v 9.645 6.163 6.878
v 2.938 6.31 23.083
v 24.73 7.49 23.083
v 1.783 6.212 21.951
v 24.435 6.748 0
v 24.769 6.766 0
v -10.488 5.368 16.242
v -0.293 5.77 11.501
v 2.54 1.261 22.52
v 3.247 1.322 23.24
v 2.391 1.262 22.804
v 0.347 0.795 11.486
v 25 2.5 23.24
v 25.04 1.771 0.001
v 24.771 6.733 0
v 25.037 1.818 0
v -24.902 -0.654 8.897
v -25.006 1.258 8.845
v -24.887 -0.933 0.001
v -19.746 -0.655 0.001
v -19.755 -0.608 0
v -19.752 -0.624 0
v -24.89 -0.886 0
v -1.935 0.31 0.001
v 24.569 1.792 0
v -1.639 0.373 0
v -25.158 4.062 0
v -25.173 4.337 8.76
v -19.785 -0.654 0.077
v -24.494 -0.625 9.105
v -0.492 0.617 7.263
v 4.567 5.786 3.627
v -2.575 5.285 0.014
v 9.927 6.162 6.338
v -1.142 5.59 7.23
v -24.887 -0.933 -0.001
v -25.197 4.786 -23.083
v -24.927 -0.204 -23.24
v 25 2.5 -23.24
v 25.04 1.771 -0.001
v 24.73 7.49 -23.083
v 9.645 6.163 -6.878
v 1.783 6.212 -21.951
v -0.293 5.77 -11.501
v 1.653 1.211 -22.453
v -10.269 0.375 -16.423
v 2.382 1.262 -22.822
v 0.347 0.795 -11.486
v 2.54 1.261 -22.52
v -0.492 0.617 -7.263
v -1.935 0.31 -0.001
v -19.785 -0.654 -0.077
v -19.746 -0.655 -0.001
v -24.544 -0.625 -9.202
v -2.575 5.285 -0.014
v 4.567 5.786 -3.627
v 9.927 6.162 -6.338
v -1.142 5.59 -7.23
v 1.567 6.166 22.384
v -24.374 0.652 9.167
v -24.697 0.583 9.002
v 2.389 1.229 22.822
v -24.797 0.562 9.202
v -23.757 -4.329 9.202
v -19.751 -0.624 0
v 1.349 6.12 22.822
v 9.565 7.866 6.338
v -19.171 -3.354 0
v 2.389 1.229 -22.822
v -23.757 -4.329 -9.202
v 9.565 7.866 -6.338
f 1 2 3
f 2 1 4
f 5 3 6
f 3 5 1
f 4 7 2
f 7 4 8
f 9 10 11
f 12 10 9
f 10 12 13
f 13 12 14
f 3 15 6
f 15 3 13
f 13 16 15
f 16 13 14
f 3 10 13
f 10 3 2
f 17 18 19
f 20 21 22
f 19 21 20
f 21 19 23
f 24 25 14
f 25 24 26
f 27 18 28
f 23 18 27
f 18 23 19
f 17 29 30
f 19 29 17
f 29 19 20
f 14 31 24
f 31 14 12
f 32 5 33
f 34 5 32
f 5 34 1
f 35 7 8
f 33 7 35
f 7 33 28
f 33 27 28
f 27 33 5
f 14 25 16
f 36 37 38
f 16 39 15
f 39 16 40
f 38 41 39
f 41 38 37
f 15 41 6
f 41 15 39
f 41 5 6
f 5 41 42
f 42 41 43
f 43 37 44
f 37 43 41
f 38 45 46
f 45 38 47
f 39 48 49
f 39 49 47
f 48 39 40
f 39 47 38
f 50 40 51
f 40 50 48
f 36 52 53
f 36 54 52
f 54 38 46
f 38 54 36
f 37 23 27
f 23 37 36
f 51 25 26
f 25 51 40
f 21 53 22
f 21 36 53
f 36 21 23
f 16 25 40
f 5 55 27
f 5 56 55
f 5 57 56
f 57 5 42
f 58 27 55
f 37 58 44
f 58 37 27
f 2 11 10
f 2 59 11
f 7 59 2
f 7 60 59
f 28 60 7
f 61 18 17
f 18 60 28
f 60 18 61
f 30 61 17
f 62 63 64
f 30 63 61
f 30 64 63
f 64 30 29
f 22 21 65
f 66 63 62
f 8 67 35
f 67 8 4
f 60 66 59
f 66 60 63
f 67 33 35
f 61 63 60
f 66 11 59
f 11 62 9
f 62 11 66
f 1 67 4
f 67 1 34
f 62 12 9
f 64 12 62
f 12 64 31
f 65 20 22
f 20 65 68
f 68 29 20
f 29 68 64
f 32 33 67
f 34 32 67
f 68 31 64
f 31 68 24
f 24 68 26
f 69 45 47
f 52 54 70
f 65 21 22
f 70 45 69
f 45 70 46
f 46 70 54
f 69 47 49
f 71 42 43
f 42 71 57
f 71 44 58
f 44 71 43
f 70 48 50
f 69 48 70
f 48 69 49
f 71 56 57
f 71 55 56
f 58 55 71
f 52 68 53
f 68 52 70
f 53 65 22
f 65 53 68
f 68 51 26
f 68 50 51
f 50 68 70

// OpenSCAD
// file: ../include/decorations.scad
module decoration_top_btm() {
    if (build_decoration_top_btm) {
        difference() {
            translate([-(diam/2), (diam+5)/-2, (height-cutout_inner_h)/2])
            cube([diam/2+deco_inset, diam+5, 20]);
        
            translate([0, 0, -height/2])
            rotate([0, 1.2, 0])
            scale([0.96, 1.0])
            translate([-1.5, 0, 0])
            cylinder(h=height, d2=diam+0.8, d1=19, $fn=1000, center=false);
            
            translate([0, 0, -0.92])
            rotate([0, -deco_side_angle_1])
            translate([0, -25, 0])
            cube([20, 50, 20]);
        }
    } else {
        import("stl/decoration_top_btm.stl");
    }
}

module decoration_side() {
    if (build_decoration_side) {
        union() {
            translate([2.3, 1.21, 23])
            rotate([0, -deco_side_angle_1, deco_side_angle_2])
            translate([30, 0, 18.7]*-1)
            cube([30, 5, 18.5]);
            
            mirror(v=[0, 0, 1])
            translate([2.3, 1.21, 23])
            rotate([0, -deco_side_angle_1, deco_side_angle_2])
            translate([30, 0, 18.7]*-1)
            cube([30, 5, 18.5]);
            
            difference() {
                union() {
                    translate([0, 2.5, cutout_outer_h/4 - 0.01])
                    translate([25, 0, cutout_outer_h/4])
                    rotate([-deco_side_angle_horz, 0, deco_side_angle_vert])
                    translate([50, 0, cutout_outer_h/2]*-1)
                    cube([50, 5, cutout_outer_h/2]);
                    
                    mirror(v=[0, 0, 1])
                    translate([0, 2.5, cutout_outer_h/4 - 0.01])
                    translate([25, 0, cutout_outer_h/4])
                    rotate([-deco_side_angle_horz, 0, deco_side_angle_vert])
                    translate([50, 0, cutout_outer_h/2]*-1)
                    cube([50, 5, cutout_outer_h/2]);
                }
                
                translate([-30, -25, 6.3])
                rotate([0, -deco_side_angle_1, 0])
                cube(50);
            }
        }
    } else {
        import("stl/decoration_side.stl");
    }
}
// file: ../config.scad
height=66;
diam=31;
thickn=2.15;
thickn_side=2.7;
thickn_deco=1;
overshoot_angle=7.5;

cutout_outer_angle=23;
cutout_inner_angle=35.7;
cutout_vertical_angle=10;
cutout_inner_h=38;
cutout_inner_offset=-2;
cutout_outer_h=46.5;
cutout_outer_offset=12.5;

screws_offset_x=6.5;
screws_offset_z=21.5;
screws_outer_d=3.5;
screws_inner_d=1.8;
screw_outer_thickn=1;

// Sorry, I didn't know what to name these angles
deco_side_angle_vert=3.1;
deco_side_angle_horz=1.8;
deco_side_angle_1=27;
deco_side_angle_2=12;
deco_inset=3;

// If false, use prebuilt STL, otherise build actual .scad
build_decoration_side=true;
build_decoration_top_btm=true;
build_inner_cutout=true;
build_outer_cutout=true;
build_screw_inset=true;
// main file
include <../config.scad>;
include <../include/decorations.scad>;

build_decoration_side=true;

decoration_side();
